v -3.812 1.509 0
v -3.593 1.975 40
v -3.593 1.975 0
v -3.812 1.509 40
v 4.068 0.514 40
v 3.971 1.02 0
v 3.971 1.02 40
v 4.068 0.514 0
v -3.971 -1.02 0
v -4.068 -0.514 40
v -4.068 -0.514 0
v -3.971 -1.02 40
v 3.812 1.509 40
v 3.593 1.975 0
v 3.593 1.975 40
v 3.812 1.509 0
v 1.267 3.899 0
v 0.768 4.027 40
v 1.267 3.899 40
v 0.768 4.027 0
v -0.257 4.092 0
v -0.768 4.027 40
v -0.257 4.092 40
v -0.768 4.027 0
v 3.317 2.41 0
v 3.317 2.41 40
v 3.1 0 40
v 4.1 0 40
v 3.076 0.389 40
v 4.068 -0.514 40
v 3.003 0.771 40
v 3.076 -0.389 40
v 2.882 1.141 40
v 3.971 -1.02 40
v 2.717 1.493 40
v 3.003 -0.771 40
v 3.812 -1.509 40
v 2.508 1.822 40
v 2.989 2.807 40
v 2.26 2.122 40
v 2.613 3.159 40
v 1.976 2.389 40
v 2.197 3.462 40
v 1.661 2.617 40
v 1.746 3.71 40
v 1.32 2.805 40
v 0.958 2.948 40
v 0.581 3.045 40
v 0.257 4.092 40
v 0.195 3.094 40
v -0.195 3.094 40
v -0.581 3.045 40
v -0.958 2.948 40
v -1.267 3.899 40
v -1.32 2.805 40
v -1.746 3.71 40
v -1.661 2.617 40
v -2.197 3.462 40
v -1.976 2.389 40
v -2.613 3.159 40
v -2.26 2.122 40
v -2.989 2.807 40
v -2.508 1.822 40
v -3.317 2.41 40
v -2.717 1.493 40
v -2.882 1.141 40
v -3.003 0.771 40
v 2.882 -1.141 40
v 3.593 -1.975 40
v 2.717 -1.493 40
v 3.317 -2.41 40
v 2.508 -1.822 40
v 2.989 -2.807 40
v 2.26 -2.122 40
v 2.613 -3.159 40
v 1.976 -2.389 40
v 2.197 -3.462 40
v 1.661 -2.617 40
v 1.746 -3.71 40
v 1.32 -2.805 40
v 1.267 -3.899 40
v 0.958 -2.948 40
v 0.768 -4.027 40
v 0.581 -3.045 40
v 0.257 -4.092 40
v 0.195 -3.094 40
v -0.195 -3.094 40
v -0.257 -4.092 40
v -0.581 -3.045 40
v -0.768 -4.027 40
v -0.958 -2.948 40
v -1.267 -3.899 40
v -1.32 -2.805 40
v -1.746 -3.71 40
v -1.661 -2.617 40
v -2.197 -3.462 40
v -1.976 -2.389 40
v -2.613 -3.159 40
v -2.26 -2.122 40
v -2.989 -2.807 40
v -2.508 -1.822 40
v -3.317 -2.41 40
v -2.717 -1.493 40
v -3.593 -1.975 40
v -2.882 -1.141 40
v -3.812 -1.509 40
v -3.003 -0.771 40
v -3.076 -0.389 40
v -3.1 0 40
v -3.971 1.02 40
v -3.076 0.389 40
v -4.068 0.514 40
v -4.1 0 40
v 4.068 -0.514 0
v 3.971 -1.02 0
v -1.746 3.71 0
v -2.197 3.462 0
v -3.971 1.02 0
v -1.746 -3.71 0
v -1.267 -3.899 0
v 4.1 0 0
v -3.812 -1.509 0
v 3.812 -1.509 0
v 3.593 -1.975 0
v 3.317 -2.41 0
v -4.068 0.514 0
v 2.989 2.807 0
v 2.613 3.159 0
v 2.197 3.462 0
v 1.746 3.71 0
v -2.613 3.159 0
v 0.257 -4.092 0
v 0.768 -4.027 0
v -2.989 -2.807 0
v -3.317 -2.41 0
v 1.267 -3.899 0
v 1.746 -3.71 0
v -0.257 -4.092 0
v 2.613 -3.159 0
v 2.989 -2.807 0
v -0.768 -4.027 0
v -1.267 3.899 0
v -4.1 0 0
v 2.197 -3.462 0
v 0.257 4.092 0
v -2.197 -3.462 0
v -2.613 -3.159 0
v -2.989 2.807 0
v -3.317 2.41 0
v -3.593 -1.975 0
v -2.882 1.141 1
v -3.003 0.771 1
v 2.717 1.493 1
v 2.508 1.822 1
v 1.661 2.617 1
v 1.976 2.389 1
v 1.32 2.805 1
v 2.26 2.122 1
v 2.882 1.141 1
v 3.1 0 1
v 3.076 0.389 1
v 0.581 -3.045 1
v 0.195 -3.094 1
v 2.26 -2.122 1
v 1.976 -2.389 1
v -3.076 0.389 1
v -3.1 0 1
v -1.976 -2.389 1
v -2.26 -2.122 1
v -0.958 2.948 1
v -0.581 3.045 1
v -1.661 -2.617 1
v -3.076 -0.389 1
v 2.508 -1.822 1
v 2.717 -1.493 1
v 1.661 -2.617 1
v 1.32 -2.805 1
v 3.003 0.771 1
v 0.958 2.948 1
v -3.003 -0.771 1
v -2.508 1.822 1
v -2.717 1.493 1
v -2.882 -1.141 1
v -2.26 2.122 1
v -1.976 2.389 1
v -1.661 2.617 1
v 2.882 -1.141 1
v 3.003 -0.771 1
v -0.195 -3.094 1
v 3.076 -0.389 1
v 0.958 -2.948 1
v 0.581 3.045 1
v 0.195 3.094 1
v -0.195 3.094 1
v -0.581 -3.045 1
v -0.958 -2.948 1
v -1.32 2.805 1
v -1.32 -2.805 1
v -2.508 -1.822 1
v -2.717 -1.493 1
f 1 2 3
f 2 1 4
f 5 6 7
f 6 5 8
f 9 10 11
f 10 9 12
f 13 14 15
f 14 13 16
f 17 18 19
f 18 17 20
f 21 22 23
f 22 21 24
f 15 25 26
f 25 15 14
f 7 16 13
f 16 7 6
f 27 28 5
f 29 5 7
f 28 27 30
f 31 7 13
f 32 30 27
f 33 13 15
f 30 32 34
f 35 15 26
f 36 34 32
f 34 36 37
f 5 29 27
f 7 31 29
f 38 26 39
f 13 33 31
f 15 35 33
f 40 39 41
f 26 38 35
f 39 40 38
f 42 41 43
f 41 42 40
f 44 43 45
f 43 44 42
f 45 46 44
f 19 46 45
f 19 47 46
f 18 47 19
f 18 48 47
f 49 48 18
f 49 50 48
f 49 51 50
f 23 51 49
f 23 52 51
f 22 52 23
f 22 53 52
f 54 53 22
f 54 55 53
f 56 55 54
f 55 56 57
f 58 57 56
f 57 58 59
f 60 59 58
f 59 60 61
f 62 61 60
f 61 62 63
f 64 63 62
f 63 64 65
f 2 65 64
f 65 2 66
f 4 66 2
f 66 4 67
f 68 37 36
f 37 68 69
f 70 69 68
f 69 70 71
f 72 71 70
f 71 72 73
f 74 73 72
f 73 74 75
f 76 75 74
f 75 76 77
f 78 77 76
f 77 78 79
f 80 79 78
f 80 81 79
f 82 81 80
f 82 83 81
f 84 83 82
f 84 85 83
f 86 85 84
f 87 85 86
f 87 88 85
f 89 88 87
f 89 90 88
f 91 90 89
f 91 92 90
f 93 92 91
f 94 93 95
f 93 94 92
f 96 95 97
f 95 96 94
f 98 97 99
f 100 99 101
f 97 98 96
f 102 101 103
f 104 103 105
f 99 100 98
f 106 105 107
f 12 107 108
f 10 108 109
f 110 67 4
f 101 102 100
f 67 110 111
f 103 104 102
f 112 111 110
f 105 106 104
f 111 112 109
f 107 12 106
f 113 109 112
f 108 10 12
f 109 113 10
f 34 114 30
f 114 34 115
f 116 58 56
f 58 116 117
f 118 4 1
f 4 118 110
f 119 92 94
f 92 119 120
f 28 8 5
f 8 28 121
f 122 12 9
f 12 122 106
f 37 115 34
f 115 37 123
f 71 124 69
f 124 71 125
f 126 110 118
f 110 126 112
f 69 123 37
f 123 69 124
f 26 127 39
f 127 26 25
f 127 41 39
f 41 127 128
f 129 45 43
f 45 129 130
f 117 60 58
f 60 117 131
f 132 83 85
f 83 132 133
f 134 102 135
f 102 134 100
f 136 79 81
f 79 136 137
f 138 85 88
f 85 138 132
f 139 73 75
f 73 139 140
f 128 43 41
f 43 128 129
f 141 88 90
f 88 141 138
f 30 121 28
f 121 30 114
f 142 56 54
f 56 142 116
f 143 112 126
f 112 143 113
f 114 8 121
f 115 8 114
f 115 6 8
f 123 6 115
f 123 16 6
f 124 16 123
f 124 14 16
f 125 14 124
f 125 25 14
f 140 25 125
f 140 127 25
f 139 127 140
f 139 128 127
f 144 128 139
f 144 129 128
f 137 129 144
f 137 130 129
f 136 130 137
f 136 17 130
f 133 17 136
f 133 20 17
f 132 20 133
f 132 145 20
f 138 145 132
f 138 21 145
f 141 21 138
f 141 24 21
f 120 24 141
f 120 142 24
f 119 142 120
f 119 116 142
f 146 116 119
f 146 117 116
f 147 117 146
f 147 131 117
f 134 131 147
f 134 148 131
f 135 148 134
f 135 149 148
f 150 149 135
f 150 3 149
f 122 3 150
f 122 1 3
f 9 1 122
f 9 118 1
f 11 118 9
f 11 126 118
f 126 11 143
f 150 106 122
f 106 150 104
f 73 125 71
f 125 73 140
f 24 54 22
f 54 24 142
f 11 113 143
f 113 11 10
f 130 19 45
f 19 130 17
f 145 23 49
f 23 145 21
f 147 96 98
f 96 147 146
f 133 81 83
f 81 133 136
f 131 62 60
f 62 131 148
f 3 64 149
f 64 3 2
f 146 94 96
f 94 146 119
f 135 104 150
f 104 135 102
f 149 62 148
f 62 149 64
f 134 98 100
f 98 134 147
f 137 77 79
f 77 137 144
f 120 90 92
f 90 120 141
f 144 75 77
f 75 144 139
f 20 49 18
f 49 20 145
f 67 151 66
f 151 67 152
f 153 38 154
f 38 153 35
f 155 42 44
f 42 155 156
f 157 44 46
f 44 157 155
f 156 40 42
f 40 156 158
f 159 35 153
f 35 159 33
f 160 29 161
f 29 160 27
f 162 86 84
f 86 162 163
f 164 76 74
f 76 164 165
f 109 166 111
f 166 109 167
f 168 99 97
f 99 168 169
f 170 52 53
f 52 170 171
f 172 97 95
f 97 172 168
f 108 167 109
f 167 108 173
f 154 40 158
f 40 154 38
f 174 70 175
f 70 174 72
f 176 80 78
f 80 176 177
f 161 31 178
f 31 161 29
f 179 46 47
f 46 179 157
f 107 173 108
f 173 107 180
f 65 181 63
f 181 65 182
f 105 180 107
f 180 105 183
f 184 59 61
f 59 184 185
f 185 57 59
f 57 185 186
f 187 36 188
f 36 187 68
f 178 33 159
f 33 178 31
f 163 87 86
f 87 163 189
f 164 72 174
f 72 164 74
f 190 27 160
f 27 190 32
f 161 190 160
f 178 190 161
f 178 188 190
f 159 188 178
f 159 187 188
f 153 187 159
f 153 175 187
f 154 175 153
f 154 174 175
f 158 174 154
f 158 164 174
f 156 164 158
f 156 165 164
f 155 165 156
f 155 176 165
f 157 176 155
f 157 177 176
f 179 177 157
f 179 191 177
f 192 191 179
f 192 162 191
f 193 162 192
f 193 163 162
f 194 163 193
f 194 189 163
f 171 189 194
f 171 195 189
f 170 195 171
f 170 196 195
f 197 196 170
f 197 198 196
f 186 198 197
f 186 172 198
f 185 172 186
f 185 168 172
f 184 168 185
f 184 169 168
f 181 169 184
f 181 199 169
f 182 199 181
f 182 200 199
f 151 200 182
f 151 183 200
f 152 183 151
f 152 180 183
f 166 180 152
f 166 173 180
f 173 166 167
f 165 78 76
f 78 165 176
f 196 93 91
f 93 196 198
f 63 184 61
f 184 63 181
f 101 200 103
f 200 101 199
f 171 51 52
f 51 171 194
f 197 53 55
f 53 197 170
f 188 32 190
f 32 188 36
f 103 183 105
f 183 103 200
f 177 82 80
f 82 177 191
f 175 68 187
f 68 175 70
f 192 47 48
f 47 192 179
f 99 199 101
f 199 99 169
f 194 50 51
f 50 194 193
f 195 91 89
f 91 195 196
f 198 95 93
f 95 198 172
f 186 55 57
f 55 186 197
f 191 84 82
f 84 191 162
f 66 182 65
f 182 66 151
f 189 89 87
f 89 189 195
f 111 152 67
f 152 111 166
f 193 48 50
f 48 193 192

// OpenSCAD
$fn = 50;

difference() {
     cylinder(40, r=4.1, true);
     translate([0,0,1]) {
          cylinder(40, r=3.1, true);
     }

}
